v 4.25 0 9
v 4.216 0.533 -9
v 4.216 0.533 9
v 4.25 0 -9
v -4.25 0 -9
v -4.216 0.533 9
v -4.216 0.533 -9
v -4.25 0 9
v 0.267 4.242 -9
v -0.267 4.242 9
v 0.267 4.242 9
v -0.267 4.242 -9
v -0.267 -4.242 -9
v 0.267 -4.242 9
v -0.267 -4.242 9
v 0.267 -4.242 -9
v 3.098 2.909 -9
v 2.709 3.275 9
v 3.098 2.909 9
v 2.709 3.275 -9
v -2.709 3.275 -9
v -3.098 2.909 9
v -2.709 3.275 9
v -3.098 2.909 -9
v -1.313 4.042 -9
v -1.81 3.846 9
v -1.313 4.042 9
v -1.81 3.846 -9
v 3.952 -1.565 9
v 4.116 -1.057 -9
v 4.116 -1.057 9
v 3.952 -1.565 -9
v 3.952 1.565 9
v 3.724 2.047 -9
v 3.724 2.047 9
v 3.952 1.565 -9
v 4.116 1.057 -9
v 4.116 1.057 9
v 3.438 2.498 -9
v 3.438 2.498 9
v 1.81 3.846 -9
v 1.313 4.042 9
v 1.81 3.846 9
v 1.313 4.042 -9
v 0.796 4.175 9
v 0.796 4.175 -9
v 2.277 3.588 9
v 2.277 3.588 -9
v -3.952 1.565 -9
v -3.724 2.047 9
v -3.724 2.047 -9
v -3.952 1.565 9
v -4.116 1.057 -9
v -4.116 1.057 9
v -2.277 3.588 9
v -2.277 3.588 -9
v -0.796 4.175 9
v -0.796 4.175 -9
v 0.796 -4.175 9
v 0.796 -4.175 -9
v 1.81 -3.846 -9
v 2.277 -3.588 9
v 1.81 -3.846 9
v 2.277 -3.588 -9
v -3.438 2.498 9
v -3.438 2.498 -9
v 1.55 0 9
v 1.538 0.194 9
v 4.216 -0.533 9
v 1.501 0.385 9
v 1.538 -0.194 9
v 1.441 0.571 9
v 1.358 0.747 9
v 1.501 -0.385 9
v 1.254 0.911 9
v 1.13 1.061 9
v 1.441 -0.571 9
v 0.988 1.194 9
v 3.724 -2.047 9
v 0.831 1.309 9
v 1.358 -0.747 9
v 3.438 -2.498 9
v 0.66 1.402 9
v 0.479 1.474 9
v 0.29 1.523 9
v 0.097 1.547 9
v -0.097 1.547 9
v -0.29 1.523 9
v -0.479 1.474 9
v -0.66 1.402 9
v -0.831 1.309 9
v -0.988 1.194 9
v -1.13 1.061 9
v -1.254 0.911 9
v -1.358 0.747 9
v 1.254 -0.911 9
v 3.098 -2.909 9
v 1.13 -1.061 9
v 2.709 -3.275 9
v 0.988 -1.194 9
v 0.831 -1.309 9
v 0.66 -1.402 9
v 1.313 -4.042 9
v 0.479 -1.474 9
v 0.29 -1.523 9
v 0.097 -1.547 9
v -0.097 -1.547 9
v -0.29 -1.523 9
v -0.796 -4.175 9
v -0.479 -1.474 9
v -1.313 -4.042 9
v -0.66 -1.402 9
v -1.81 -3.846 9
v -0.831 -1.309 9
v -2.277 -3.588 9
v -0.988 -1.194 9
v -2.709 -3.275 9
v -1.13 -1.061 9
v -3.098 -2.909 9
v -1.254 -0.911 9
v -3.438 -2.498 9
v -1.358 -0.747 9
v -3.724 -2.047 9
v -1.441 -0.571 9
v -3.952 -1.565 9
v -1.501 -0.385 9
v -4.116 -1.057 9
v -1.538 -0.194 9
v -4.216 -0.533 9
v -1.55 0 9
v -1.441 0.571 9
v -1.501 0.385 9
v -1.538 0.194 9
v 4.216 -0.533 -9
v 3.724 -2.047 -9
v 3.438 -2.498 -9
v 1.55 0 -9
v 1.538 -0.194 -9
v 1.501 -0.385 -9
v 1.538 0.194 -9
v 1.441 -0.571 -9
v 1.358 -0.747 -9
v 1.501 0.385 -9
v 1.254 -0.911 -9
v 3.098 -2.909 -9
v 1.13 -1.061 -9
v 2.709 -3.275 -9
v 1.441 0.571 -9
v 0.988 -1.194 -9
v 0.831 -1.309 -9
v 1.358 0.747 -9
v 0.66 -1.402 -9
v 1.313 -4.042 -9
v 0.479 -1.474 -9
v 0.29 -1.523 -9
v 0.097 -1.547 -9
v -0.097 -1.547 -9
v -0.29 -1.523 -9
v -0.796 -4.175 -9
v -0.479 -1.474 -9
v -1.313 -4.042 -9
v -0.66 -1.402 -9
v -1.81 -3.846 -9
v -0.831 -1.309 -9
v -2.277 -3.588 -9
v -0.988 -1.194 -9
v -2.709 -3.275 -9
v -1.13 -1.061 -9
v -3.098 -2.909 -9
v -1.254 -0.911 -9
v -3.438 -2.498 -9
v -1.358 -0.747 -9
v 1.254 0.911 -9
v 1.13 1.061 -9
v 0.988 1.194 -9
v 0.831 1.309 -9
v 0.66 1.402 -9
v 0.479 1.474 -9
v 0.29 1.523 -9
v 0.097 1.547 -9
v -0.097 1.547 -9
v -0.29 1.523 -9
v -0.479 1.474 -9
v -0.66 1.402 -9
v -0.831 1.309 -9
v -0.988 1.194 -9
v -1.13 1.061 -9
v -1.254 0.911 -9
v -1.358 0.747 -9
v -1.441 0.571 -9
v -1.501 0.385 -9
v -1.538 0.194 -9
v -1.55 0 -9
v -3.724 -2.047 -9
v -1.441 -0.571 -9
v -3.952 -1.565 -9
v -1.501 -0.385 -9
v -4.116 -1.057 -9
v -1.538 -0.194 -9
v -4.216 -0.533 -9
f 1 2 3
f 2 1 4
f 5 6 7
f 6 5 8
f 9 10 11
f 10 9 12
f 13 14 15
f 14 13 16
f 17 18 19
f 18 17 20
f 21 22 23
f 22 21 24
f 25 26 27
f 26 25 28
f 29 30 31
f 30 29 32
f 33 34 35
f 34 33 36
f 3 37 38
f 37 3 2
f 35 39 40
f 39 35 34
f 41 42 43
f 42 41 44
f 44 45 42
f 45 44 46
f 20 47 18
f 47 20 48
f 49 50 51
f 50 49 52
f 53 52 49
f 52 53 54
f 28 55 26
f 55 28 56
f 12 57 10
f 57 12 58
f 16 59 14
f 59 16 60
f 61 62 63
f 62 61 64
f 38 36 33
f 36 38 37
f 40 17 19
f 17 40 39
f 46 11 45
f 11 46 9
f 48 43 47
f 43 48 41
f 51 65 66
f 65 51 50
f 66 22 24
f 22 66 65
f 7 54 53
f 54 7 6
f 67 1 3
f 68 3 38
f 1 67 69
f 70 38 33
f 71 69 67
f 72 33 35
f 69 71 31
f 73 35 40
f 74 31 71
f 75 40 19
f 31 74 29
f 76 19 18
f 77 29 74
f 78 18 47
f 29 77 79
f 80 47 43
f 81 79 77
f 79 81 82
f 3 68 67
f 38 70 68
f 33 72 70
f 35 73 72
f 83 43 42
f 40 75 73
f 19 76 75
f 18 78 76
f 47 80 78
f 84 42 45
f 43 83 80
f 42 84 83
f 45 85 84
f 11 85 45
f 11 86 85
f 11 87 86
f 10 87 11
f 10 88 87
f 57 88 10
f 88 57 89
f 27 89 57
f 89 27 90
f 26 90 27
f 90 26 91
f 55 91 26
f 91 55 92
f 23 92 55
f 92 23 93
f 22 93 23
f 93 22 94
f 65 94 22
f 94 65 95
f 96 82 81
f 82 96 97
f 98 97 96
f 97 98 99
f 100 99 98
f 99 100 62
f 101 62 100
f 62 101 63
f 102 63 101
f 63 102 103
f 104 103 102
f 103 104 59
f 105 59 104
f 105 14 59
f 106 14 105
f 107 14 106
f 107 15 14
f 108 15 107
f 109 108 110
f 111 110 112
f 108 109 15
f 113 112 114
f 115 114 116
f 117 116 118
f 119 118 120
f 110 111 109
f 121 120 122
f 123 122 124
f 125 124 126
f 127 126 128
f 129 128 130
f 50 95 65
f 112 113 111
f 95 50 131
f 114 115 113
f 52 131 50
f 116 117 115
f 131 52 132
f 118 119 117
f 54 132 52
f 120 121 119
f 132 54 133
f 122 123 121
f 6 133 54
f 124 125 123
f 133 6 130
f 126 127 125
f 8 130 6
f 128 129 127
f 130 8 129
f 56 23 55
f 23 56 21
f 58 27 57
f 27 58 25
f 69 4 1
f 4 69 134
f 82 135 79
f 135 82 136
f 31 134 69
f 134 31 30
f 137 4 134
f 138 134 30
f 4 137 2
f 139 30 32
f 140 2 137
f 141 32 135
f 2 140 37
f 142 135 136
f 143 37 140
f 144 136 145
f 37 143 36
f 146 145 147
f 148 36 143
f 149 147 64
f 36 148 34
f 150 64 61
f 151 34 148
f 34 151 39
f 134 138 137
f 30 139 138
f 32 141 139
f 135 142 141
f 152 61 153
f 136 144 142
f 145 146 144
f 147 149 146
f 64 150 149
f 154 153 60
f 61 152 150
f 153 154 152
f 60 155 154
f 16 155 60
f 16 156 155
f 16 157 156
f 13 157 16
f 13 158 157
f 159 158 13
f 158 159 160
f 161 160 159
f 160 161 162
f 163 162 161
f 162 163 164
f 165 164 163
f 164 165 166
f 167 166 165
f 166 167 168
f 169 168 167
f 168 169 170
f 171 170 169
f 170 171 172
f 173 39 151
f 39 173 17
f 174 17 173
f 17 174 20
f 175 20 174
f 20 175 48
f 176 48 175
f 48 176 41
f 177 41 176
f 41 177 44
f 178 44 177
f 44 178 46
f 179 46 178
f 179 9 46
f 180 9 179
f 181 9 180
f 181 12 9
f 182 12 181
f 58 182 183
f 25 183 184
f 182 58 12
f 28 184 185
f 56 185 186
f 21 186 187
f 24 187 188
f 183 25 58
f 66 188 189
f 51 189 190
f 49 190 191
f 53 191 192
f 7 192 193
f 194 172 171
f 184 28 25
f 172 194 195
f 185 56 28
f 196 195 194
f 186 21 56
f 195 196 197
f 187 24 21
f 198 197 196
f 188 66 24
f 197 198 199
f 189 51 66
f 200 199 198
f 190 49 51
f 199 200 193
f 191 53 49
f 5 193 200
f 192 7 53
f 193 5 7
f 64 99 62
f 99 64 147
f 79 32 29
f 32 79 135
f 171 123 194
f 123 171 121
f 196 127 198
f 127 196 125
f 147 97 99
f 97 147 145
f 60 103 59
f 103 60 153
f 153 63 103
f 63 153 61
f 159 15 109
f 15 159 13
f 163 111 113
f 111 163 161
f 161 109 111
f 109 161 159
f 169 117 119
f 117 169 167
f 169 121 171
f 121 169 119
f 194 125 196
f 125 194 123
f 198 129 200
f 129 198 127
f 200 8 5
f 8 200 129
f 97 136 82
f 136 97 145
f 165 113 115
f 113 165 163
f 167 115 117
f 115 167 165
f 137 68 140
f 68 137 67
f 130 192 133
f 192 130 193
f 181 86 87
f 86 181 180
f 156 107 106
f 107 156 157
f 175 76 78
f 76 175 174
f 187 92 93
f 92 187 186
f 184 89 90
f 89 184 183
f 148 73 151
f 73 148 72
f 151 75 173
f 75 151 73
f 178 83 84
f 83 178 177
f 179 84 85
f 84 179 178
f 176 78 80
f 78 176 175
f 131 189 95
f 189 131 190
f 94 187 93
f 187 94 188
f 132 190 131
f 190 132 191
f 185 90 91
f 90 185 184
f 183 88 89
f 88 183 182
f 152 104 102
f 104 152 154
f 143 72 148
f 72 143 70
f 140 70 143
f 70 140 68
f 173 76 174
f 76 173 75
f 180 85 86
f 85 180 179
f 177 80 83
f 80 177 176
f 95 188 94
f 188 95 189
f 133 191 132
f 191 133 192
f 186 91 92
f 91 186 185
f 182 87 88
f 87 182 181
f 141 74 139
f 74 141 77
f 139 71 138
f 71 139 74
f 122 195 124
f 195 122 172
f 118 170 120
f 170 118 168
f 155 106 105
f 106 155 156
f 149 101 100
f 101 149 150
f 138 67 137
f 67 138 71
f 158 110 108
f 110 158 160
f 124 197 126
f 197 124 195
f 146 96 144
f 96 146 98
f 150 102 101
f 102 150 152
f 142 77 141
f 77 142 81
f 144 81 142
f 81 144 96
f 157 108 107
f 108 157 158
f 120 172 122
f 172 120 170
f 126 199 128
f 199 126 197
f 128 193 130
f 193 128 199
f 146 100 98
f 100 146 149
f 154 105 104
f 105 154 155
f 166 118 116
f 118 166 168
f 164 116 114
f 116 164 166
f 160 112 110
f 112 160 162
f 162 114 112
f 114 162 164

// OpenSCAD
$fn = 50;


difference() {
	union() {
		translate(v = [0, 0, -9.0000000000]) {
			cylinder(h = 18, r = 4.2500000000);
		}
	}
	union() {
		translate(v = [0, 0, -100.0000000000]) {
			cylinder(h = 200, r = 1.5500000000);
		}
	}
}
